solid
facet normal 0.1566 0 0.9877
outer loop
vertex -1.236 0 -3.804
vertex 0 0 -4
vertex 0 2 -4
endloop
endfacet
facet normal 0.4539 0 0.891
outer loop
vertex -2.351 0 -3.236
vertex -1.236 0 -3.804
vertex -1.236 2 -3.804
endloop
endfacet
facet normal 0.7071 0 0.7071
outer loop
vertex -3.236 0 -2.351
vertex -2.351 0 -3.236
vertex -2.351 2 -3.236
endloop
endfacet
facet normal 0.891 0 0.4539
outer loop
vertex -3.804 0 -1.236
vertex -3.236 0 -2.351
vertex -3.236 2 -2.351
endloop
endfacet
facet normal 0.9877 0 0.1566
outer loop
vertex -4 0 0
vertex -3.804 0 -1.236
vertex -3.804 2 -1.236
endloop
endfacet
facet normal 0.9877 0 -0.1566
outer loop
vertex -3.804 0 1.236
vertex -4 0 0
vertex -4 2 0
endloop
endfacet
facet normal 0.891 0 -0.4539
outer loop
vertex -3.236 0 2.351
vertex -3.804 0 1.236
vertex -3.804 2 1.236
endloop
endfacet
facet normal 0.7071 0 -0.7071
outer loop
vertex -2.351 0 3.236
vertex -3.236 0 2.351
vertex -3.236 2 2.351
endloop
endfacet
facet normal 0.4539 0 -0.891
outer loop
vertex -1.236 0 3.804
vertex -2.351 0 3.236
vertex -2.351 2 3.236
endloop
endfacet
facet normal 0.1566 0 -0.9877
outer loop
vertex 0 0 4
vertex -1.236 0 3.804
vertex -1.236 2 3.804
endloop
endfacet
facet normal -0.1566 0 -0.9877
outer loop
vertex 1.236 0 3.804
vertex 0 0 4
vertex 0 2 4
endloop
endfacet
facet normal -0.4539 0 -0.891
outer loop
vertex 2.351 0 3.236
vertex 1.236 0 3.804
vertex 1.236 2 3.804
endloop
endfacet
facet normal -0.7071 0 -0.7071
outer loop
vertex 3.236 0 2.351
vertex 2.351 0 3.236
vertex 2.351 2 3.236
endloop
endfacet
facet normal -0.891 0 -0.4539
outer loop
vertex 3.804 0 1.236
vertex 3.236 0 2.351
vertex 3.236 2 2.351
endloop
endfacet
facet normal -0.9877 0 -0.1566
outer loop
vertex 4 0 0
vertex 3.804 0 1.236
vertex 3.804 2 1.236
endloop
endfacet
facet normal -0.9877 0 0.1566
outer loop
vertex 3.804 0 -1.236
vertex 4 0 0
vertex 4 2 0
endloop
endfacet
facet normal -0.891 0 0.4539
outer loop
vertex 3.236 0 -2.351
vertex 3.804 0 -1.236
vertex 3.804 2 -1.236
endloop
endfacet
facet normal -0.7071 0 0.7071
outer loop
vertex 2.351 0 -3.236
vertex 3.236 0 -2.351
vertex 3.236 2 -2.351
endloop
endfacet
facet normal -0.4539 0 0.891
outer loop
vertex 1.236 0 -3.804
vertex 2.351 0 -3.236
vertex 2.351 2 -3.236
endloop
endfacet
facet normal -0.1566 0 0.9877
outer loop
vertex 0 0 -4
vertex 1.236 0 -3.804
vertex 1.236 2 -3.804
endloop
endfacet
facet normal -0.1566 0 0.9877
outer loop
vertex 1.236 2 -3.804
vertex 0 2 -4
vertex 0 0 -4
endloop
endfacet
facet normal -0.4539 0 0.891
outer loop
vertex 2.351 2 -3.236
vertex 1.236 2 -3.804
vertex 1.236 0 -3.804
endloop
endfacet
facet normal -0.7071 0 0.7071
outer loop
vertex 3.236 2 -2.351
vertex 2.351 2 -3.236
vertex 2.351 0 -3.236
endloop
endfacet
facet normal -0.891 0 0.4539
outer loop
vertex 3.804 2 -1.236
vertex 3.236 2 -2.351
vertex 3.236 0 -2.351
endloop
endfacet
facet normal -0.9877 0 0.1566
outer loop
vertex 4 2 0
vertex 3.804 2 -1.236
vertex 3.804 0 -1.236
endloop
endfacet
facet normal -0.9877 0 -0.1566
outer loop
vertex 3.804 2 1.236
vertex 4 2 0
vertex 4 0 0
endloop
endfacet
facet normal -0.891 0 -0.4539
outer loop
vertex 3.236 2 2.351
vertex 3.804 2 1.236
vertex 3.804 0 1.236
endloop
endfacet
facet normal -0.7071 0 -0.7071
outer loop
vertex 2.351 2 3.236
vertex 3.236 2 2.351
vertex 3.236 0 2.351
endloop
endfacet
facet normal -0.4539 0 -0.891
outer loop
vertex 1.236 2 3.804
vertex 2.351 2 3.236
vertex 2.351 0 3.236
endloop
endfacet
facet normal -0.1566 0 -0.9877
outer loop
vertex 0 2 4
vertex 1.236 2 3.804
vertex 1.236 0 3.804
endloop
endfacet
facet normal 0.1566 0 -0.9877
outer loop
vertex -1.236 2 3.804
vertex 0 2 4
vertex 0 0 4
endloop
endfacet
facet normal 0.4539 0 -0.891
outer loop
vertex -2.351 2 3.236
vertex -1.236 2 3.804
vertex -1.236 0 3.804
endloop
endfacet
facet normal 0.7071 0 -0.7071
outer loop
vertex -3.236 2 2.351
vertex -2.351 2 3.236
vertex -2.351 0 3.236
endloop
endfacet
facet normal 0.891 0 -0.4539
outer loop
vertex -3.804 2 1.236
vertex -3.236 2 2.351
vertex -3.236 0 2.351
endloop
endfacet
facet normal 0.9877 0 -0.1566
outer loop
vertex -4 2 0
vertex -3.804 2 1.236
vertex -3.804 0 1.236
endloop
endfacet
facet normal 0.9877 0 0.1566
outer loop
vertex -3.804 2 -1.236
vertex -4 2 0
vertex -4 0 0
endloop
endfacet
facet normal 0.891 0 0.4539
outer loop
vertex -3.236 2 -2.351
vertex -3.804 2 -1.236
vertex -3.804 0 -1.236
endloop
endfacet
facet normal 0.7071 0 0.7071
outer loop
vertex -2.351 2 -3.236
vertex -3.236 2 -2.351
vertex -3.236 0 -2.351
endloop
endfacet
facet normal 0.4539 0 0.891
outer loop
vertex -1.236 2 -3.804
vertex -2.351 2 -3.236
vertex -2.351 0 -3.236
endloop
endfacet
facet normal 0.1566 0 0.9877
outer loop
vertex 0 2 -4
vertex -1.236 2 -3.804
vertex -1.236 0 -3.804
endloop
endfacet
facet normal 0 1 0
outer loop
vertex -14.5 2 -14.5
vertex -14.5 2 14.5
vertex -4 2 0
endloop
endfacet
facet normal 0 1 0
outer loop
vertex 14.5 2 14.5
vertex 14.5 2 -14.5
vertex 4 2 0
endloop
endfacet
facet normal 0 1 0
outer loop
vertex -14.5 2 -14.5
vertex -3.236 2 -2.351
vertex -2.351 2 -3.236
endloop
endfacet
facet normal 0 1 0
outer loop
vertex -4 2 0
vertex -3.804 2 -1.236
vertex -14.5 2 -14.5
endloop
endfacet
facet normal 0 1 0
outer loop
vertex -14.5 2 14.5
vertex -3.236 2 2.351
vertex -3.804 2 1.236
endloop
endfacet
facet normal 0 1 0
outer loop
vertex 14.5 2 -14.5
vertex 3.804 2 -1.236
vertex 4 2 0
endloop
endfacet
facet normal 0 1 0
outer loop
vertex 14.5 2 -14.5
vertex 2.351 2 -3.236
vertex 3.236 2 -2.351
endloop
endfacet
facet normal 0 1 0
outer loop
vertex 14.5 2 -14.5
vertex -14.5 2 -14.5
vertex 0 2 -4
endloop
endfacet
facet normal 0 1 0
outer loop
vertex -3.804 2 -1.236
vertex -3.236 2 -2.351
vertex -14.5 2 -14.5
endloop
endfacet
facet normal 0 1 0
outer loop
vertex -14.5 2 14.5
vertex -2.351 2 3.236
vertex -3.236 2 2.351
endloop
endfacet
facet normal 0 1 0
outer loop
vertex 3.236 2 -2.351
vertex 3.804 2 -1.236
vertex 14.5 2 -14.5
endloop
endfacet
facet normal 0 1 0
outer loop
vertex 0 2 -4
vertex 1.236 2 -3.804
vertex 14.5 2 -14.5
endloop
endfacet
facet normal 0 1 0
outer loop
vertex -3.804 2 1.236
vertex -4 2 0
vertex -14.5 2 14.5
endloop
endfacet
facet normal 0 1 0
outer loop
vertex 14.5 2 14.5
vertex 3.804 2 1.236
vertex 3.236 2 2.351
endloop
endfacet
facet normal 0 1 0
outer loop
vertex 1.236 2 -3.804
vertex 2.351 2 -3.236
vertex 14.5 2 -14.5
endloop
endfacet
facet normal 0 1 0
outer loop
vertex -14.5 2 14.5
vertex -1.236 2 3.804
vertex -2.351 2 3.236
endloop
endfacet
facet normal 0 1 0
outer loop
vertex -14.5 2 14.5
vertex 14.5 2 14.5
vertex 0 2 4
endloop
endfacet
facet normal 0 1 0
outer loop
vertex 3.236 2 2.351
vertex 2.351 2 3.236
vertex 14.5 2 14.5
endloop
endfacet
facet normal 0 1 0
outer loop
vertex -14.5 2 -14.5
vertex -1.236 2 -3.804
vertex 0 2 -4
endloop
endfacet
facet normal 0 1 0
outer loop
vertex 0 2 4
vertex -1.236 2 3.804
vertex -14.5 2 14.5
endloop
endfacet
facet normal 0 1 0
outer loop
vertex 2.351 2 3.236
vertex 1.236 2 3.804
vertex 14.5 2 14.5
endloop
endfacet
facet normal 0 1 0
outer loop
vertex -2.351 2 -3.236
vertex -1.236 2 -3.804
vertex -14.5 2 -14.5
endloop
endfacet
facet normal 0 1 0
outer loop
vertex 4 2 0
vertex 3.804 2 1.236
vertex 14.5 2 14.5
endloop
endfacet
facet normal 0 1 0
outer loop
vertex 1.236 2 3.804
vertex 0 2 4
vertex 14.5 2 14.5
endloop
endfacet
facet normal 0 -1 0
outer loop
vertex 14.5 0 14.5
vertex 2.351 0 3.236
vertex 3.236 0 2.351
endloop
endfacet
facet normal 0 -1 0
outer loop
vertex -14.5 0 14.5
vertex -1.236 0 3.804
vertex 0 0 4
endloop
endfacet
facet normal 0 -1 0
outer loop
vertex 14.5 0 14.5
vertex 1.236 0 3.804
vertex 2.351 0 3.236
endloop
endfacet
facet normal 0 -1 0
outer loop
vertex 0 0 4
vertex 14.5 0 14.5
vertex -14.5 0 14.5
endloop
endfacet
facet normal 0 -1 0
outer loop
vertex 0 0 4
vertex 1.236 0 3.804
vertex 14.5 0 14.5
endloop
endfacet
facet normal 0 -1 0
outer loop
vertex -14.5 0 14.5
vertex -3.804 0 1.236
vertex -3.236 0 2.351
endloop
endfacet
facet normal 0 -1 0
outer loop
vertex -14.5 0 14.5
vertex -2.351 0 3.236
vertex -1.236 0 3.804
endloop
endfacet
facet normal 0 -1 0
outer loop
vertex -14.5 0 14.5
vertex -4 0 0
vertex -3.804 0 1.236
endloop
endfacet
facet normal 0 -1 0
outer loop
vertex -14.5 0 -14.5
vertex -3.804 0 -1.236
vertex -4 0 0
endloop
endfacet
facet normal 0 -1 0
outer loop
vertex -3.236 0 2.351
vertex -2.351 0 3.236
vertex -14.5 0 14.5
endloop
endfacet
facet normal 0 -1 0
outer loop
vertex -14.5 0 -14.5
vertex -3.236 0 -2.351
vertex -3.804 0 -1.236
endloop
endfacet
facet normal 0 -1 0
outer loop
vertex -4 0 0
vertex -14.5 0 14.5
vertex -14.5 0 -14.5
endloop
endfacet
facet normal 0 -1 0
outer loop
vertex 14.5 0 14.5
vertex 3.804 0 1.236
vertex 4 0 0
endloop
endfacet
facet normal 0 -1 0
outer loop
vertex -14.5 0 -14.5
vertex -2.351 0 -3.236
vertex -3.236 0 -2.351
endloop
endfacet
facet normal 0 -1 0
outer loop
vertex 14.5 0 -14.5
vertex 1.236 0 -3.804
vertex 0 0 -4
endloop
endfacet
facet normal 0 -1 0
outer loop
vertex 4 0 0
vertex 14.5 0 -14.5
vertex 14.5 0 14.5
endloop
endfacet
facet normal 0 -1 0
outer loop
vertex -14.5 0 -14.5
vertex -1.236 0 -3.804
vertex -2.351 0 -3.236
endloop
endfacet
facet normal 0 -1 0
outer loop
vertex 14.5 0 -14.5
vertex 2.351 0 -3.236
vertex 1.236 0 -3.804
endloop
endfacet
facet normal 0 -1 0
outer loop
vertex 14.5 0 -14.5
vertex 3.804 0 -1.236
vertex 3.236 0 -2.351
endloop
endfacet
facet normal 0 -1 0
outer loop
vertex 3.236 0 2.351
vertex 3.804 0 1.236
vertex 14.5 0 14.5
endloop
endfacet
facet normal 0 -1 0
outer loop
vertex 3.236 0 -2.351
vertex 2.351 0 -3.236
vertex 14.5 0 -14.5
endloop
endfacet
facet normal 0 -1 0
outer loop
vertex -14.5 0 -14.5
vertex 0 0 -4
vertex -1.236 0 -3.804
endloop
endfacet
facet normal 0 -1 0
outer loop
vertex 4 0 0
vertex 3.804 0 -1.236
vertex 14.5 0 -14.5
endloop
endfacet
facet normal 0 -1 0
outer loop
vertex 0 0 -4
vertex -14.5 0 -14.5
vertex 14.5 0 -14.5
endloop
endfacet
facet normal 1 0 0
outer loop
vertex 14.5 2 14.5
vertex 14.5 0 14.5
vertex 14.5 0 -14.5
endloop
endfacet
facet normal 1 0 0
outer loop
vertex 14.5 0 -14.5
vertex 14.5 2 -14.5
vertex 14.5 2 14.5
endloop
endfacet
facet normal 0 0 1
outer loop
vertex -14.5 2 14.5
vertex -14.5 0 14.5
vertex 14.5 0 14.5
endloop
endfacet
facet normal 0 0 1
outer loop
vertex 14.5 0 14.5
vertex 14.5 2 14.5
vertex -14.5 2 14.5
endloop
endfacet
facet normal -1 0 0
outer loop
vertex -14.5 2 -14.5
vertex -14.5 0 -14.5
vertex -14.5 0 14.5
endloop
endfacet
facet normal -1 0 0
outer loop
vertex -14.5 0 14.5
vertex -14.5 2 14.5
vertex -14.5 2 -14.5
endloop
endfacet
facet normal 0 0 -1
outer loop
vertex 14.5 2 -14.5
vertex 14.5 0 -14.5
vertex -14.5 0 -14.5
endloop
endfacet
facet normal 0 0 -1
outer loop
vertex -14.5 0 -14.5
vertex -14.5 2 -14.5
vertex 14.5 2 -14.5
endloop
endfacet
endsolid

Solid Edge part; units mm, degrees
sketch "Sketch1" plane through (0, 0, 0) normal (0, -1, 0) x (1, 0, 0)
  circle A0 centre (0, 0) radius 4
  line L0 (14.5, 14.5) -> (-14.5, 14.5)
  line L1 (-14.5, 14.5) -> (-14.5, -14.5)
  line L2 (-14.5, -14.5) -> (14.5, -14.5)
  line L3 (14.5, -14.5) -> (14.5, 14.5)
extrude "Protrusion1" add sketch "Sketch1" against normal blind 2
